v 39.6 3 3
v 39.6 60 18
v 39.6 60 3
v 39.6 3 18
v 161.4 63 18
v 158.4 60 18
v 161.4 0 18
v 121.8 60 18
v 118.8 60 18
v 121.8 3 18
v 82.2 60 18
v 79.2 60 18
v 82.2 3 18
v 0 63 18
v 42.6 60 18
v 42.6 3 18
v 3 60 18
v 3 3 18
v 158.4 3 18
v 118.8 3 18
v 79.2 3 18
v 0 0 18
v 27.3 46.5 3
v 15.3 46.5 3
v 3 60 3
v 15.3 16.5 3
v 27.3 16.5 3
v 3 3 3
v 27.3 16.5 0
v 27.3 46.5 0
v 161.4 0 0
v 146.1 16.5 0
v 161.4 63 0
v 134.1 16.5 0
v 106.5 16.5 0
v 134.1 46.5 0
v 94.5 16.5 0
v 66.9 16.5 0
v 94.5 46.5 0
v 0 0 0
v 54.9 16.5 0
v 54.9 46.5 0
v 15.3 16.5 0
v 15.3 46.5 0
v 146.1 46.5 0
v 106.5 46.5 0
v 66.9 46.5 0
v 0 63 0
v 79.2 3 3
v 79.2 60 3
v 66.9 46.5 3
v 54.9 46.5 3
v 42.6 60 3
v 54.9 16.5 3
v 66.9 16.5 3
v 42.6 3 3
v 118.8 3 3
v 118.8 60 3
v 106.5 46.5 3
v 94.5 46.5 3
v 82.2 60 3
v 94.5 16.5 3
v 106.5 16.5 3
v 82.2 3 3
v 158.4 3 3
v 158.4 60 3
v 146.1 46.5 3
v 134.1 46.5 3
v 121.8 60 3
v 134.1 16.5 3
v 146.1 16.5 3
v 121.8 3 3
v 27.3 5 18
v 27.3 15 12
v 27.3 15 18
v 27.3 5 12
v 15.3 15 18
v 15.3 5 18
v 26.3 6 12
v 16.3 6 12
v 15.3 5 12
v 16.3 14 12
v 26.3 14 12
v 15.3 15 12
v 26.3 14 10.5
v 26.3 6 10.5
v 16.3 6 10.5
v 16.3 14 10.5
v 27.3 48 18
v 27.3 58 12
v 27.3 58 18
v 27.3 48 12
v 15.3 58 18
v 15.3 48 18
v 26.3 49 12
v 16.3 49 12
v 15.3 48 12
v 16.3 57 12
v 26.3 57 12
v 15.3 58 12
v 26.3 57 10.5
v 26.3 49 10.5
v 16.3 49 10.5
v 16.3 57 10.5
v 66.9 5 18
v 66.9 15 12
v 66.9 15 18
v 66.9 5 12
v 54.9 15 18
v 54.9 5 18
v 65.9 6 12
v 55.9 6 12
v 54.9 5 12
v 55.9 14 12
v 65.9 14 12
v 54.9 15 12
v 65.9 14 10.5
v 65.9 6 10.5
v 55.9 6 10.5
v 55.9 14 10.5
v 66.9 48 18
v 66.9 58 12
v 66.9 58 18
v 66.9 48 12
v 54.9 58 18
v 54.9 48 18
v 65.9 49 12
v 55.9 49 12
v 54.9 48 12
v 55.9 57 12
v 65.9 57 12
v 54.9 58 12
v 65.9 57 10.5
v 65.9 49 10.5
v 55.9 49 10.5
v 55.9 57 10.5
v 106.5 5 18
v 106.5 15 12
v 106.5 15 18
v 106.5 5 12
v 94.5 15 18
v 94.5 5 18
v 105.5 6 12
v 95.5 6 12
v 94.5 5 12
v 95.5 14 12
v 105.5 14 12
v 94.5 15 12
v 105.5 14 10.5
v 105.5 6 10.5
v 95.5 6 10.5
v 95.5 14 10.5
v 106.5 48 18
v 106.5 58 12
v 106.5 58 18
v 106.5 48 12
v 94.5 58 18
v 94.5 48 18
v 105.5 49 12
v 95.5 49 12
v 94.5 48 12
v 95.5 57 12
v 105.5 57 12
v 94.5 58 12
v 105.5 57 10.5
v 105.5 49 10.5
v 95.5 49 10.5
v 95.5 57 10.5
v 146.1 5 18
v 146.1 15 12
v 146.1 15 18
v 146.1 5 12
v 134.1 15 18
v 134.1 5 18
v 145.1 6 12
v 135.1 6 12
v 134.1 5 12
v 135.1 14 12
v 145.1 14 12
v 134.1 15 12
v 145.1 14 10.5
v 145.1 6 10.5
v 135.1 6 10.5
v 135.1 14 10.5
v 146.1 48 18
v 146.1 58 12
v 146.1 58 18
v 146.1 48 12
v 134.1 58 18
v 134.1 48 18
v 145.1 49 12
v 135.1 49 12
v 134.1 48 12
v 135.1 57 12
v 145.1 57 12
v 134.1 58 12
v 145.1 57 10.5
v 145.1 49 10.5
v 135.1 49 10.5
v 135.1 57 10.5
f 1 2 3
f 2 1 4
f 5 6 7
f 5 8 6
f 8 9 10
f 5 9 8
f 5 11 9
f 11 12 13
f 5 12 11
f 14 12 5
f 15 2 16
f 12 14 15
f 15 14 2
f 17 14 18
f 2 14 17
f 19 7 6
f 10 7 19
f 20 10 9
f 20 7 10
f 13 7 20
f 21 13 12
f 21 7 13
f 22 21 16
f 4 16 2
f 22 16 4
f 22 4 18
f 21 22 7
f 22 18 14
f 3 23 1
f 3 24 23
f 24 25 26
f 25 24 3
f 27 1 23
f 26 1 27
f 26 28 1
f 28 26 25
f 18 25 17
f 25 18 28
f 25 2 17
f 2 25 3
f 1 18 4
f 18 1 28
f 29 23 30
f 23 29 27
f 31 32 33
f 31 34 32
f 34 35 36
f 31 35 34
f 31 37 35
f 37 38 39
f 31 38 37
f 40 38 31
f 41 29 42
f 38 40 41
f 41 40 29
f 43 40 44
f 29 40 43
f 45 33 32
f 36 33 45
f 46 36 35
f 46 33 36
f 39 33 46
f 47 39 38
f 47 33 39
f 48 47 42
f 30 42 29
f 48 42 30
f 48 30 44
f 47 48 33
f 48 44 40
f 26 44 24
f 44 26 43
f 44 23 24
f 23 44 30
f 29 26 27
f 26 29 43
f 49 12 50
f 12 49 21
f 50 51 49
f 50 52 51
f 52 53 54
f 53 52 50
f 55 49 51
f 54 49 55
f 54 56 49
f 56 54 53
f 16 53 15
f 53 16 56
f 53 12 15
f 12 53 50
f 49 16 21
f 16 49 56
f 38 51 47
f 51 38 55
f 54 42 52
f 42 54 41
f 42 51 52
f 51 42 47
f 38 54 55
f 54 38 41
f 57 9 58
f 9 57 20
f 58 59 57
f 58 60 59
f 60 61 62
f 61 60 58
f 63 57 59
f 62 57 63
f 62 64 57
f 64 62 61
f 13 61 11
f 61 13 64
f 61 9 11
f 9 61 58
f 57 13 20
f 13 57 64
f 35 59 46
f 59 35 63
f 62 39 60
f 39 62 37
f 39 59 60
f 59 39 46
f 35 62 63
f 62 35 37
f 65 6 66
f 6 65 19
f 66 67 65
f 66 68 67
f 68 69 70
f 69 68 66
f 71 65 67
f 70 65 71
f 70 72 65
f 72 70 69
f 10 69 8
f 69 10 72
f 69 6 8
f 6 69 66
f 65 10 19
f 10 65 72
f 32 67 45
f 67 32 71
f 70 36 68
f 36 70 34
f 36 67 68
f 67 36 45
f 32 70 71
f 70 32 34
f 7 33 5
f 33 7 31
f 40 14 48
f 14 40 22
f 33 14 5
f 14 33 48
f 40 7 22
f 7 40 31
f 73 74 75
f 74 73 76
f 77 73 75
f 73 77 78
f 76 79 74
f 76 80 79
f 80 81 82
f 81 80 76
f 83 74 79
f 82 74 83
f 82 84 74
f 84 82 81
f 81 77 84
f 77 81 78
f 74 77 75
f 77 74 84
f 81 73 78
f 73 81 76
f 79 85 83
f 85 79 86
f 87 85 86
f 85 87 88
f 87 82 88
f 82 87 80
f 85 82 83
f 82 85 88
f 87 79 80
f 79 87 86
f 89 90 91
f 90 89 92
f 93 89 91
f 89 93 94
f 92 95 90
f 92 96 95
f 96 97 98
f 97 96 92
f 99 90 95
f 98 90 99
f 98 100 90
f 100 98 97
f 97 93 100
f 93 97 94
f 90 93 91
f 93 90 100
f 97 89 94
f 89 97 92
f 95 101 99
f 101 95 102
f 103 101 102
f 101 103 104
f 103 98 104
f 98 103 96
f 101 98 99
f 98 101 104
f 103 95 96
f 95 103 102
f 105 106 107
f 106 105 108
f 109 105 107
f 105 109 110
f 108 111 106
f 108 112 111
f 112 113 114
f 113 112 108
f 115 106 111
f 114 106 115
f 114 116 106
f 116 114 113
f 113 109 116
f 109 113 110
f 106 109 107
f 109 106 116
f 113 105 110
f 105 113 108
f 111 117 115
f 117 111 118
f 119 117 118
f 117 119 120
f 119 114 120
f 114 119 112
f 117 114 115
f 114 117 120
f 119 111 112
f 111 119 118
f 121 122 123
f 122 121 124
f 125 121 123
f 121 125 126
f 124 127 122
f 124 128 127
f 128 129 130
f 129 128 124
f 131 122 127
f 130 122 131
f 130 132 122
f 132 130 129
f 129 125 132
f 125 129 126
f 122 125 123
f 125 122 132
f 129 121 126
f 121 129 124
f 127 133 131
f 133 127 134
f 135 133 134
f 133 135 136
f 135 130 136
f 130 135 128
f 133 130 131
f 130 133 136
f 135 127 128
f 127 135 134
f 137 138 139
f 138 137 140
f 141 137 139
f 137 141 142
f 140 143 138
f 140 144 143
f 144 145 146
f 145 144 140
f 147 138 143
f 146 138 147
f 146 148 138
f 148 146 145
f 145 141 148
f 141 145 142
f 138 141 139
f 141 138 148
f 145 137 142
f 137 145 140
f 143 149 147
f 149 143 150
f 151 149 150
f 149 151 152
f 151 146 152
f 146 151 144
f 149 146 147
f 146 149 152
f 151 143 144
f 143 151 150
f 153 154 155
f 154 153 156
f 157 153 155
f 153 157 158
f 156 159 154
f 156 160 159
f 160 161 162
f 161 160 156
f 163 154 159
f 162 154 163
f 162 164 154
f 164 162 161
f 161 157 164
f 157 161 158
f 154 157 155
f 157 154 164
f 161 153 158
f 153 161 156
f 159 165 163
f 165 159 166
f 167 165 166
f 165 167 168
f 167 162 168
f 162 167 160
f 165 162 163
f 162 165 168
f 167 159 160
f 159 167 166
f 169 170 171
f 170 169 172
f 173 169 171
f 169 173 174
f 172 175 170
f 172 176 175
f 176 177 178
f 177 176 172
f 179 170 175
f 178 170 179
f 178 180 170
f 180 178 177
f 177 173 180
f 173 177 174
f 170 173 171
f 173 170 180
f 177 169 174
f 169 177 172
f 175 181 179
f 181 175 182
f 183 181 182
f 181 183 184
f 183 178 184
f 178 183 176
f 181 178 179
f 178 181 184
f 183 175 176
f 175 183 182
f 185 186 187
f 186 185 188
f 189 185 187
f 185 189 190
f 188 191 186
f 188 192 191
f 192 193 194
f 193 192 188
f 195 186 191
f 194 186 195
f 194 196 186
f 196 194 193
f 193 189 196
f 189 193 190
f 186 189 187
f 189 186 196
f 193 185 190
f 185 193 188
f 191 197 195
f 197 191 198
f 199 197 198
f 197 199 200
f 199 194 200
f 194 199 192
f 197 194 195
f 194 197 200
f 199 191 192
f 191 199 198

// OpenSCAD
// Olympus BLS-5 battery case (4x1) with snap-fit tabs and finger holes
battery_length = 56;
battery_width = 36;
battery_height = 13;

slot_clearance = 0.6;                    // small clearance for insertion
wall_thickness = 3;
base_thickness = 3;
top_clearance = 2;
slot_length_clearance = 1.0;
num_slots = 4;

inner_slot_width = battery_width + slot_clearance;
slot_length = battery_length + slot_length_clearance;
outer_length = num_slots*inner_slot_width + (num_slots + 1)*wall_thickness;
outer_width = slot_length + 2*wall_thickness;
outer_height = base_thickness + battery_height + top_clearance;

finger_hole_depth = 10;
finger_hole_length = 30;
finger_hole_width = 12;

// Snap-fit tab dimensions
tab_width = 12;
tab_length = 10;
tab_height = 6;
lip_thickness = 1.5;
lip_width = tab_width - 2;
lip_length = tab_length - 2;

module case_body() {
    difference() {
        // Outer shell
        cube([outer_length, outer_width, outer_height], center=false);

        // Battery cavities and finger holes
        for (slot_idx = [0 : num_slots - 1]) {
            let (slot_x = wall_thickness + slot_idx*(inner_slot_width + wall_thickness)) {
                // Slot cavity
                translate([slot_x, wall_thickness, base_thickness])
                    cube([inner_slot_width, slot_length, battery_height + top_clearance], center=false);

                // Finger hole from bottom
                translate([
                    slot_x + (inner_slot_width - finger_hole_width)/2,
                    wall_thickness + (slot_length - finger_hole_length)/2,
                    0
                ])
                    cube([finger_hole_width, finger_hole_length, finger_hole_depth], center=false);
            }
        }
    }
}

module snap_tab(slot_x, y_start) {
    let (tab_x = slot_x + (inner_slot_width - tab_width)/2,
         z_bottom = outer_height - tab_height) {
        union() {
            translate([tab_x, y_start, z_bottom])
                cube([tab_width, tab_length, tab_height], center=false);
            translate([
                tab_x + (tab_width - lip_width)/2,
                y_start + (tab_length - lip_length)/2,
                z_bottom - lip_thickness
            ])
                cube([lip_width, lip_length, lip_thickness], center=false);
        }
    }
}

module snap_tabs() {
    for (slot_idx = [0 : num_slots - 1]) {
        let (slot_x = wall_thickness + slot_idx*(inner_slot_width + wall_thickness)) {
            front_y = wall_thickness + 2;
            back_y = wall_thickness + slot_length - tab_length - 2;
            snap_tab(slot_x, front_y);
            snap_tab(slot_x, back_y);
        }
    }
}

// Final assembly
union() {
    case_body();
    snap_tabs();
}
